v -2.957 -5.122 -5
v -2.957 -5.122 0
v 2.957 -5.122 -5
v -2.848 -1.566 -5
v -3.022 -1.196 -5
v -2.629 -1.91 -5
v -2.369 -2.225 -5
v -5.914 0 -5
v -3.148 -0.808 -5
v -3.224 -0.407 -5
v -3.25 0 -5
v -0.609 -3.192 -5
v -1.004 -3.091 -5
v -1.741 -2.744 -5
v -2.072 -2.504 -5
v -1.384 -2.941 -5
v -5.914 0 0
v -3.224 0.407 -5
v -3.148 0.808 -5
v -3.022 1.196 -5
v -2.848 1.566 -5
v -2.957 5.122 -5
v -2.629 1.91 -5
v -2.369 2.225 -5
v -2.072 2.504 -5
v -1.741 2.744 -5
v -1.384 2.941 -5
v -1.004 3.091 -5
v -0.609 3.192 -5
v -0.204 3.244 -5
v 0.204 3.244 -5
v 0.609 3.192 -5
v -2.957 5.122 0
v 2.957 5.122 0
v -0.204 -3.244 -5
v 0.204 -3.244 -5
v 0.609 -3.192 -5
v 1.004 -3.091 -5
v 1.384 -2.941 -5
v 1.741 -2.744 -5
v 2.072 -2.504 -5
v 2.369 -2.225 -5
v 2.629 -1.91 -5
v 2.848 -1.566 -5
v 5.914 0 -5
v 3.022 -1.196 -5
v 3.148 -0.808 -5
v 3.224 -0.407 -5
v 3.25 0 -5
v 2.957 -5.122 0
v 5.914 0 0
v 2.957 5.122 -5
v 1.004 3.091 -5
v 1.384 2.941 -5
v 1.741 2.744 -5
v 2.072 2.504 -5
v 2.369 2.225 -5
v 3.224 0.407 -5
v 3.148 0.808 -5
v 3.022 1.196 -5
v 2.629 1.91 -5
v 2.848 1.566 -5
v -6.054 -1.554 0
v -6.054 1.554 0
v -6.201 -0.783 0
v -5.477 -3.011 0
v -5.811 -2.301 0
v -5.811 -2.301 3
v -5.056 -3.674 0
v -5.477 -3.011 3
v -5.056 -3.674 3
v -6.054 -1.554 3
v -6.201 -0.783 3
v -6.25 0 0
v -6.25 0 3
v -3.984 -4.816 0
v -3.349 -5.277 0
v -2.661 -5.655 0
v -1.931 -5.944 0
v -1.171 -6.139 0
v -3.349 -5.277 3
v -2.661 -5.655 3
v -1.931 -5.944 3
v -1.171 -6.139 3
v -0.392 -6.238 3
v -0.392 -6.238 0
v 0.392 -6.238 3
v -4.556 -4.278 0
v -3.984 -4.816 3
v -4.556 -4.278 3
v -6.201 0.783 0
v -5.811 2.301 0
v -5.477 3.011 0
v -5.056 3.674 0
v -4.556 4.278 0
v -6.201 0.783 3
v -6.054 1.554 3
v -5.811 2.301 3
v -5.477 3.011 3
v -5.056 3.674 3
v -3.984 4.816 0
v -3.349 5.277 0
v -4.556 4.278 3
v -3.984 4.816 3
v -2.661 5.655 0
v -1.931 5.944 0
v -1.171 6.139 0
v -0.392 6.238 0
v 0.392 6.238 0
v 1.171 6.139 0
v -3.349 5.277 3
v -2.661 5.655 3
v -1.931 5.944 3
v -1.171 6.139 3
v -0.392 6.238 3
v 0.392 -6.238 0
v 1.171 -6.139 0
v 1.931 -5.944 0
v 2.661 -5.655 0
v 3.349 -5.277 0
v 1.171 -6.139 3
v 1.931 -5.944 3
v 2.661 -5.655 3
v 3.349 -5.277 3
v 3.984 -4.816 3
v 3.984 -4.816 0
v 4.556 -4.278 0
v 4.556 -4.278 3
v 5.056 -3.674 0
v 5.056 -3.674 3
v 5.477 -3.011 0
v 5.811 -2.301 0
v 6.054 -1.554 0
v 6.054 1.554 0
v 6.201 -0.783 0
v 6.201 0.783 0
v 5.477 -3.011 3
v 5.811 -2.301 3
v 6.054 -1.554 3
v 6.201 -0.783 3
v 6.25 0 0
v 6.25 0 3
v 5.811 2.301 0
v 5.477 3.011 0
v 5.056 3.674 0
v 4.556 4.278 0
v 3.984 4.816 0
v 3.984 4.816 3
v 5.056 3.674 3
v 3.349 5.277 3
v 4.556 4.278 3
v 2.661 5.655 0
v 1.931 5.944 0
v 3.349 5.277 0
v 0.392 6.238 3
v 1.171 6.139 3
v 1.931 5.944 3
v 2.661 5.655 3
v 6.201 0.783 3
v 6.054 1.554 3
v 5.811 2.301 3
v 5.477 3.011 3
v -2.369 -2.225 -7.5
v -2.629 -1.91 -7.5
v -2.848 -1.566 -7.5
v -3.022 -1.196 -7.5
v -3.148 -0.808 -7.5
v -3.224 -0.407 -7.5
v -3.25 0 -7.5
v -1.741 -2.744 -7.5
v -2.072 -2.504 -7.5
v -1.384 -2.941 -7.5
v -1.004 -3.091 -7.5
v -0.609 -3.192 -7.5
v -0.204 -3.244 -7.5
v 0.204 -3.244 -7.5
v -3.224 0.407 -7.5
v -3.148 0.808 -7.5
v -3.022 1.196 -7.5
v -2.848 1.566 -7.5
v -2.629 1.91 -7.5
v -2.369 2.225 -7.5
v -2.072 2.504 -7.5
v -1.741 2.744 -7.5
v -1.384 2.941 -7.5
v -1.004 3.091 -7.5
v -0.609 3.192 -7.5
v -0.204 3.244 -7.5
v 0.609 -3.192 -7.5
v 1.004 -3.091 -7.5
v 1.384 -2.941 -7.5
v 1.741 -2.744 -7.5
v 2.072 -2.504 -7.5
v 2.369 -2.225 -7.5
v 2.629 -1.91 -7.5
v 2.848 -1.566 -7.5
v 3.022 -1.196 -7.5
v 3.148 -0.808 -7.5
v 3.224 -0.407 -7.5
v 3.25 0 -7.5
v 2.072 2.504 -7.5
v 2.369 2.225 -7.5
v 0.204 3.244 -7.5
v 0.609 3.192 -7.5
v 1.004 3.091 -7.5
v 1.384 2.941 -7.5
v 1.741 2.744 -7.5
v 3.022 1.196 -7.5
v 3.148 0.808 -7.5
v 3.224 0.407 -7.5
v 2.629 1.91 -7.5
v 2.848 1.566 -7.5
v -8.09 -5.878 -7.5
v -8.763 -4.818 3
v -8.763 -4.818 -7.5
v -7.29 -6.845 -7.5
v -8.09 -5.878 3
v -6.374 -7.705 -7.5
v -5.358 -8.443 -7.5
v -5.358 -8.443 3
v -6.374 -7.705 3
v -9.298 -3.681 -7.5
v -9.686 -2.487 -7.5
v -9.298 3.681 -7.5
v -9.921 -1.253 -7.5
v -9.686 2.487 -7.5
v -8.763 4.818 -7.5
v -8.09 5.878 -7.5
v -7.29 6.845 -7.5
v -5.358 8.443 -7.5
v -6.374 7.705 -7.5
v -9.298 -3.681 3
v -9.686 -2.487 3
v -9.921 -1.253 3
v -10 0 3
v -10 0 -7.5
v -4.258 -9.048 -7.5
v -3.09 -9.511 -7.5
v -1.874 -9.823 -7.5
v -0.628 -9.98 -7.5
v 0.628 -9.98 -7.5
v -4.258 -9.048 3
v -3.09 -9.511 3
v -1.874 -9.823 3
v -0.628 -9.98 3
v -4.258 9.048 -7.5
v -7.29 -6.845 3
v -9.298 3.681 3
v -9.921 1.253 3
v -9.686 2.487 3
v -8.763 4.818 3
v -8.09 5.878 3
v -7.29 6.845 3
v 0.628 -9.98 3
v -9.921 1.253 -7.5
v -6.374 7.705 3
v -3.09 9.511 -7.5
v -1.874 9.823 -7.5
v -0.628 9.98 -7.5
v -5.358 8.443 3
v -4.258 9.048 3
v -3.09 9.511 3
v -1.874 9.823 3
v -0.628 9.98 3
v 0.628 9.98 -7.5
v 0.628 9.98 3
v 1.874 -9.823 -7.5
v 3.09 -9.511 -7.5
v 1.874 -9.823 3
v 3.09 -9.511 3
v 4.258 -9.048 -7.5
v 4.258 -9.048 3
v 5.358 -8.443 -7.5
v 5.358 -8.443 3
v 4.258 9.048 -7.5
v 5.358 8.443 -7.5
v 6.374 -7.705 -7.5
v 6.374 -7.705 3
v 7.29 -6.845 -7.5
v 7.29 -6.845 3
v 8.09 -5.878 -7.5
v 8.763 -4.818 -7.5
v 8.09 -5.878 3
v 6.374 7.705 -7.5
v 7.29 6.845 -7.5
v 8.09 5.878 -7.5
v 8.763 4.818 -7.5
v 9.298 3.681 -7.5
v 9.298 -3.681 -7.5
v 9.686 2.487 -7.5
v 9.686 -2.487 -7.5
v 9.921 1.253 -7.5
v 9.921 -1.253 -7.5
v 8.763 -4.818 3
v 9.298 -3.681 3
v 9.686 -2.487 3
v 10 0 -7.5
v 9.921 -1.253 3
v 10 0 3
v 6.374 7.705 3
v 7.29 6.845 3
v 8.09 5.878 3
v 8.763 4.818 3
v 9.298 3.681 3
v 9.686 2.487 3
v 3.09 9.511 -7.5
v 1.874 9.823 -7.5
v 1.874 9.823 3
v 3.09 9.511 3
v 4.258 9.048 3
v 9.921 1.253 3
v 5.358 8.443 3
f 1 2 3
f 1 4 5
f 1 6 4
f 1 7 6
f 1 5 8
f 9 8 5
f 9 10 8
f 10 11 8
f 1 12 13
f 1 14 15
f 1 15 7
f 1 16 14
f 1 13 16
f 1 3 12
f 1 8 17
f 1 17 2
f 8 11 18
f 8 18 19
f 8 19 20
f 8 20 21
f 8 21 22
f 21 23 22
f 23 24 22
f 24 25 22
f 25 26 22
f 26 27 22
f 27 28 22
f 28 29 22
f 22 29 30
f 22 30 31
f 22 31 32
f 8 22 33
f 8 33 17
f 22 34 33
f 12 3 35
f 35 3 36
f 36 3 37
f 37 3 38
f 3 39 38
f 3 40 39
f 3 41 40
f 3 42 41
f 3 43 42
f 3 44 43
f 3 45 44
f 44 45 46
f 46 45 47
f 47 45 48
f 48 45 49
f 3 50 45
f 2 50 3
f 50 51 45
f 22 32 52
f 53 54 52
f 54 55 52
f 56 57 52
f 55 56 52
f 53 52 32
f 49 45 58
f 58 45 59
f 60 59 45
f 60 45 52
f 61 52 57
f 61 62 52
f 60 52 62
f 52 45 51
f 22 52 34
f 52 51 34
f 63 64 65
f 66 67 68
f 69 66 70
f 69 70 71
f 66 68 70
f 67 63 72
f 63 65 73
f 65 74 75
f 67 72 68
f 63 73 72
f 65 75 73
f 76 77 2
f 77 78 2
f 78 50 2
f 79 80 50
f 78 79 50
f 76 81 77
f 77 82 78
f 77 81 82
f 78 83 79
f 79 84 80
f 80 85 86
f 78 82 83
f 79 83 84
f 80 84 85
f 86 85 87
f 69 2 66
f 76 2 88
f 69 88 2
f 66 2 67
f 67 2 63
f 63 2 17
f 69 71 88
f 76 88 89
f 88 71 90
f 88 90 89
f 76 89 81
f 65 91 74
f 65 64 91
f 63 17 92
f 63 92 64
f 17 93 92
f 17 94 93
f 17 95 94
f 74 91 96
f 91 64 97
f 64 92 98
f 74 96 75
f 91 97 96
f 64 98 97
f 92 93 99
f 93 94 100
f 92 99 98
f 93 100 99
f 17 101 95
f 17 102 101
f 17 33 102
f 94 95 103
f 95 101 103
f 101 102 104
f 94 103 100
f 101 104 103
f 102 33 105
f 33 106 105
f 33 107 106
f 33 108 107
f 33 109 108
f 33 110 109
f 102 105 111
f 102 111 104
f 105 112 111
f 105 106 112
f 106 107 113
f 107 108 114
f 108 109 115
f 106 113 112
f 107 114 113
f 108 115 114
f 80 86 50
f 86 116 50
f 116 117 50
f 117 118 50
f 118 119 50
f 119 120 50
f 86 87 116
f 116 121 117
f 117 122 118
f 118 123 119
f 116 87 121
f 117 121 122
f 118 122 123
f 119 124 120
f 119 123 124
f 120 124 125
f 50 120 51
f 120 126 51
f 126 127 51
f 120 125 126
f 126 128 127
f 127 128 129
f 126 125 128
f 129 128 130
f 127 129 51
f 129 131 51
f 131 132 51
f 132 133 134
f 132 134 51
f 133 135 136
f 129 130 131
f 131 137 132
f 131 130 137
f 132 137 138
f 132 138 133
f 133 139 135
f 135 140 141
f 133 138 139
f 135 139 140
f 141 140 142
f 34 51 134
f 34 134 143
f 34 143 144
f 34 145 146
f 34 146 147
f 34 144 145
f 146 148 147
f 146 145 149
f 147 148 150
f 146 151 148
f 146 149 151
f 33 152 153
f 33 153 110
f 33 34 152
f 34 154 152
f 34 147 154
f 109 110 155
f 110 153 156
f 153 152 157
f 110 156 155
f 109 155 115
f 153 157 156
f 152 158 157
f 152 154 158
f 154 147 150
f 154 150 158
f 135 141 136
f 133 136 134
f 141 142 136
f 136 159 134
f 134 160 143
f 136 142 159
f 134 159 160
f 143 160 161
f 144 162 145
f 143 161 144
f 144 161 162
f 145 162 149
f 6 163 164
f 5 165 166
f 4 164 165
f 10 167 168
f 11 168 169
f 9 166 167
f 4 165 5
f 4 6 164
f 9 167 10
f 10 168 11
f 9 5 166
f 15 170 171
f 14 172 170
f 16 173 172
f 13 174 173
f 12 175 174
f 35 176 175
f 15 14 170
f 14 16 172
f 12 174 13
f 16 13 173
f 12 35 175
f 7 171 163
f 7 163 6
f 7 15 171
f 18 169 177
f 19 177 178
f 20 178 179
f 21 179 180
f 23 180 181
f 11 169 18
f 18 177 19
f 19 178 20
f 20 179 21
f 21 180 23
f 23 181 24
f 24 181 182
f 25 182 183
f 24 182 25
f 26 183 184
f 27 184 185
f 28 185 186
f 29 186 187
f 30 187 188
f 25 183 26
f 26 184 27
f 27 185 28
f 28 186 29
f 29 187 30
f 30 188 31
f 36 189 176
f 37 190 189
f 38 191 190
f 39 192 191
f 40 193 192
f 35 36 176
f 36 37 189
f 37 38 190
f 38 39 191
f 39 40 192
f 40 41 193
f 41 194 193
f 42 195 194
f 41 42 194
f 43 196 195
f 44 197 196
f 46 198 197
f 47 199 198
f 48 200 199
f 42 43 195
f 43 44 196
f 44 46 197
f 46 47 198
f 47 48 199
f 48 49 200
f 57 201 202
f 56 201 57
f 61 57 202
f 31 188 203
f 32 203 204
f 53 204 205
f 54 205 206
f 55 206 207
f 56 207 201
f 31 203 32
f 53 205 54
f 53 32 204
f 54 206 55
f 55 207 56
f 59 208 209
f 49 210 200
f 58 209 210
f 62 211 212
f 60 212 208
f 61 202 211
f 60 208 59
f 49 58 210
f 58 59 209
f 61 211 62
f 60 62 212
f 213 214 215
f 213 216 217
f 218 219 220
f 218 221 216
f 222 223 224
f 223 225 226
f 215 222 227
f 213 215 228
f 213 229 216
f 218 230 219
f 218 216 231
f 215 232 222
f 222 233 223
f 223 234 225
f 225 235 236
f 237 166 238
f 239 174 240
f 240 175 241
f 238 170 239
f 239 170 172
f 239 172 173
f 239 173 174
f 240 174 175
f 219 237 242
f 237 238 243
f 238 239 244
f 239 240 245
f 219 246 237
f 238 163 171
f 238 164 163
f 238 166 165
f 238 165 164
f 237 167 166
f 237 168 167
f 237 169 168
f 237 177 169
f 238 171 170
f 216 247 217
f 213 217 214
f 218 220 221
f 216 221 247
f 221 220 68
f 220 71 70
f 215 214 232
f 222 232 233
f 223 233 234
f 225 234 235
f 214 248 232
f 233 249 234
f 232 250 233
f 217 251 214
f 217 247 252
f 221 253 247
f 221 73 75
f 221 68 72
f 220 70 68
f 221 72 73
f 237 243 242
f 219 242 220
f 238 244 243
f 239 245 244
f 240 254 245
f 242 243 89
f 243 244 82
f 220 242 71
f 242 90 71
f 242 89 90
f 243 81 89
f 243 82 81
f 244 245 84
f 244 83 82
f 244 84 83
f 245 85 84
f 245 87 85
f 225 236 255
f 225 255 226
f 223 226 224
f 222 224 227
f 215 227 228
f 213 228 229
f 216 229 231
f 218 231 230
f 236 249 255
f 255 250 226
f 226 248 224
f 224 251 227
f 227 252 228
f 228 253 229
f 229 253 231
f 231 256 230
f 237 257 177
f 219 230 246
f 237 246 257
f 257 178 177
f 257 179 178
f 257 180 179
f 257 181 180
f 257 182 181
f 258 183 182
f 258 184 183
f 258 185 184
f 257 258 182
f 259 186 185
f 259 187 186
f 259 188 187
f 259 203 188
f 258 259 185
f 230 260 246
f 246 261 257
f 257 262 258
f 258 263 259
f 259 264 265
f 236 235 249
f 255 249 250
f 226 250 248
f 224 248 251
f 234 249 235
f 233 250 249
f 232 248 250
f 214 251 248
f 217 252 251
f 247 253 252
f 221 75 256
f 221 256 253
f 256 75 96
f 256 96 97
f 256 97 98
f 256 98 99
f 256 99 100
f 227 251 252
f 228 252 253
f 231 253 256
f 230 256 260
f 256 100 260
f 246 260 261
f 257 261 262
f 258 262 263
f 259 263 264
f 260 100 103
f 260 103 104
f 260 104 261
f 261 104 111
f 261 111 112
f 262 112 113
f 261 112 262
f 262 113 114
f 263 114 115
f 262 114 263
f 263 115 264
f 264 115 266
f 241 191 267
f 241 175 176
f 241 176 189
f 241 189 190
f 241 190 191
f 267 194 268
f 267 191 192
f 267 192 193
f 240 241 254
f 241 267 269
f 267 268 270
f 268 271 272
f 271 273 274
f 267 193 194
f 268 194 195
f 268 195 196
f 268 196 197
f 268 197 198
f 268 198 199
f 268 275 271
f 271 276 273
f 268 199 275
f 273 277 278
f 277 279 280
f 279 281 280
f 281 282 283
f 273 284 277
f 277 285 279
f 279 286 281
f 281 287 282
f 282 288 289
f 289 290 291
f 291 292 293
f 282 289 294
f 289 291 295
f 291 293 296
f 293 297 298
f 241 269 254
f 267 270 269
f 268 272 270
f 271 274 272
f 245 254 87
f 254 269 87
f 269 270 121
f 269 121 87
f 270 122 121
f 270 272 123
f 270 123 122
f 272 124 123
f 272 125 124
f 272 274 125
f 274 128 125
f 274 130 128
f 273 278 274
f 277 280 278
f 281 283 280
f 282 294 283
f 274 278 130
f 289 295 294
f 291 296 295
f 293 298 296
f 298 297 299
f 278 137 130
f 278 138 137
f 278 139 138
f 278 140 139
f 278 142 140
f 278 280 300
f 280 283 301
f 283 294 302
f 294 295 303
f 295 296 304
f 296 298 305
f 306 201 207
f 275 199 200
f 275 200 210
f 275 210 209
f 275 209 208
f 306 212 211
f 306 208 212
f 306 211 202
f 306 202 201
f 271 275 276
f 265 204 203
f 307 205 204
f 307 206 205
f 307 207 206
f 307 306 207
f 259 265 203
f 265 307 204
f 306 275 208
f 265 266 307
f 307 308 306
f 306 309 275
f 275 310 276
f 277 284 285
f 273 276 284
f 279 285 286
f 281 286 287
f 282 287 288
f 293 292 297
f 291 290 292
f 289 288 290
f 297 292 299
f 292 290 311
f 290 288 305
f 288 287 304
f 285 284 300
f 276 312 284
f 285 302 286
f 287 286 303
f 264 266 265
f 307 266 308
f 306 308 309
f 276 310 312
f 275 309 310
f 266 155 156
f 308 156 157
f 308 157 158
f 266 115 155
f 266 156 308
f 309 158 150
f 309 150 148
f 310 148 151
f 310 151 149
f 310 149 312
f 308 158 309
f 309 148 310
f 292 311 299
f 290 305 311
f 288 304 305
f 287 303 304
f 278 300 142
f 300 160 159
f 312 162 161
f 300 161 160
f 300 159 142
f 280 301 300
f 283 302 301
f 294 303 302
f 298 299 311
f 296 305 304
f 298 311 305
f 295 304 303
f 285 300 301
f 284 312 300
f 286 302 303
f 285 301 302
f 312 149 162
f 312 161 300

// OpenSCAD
$fn = 50;

difference() {
	union() {
		translate(v = [0, 0, -7.5]) {
			cylinder(h = 10.5, r = 10.0);
		}
	}
	union() {
		translate(v = [0, 0, 0]) {
			rotate(a = [0, 0, 0]) {
				difference() {
					union() {
						translate(v = [0, 0, -5]) {
							linear_extrude(height = 5) {
								polygon(points = [[5.914249999999999, 0.0], [2.957125, 5.1218907443321156], [-2.9571249999999982, 5.1218907443321156], [-5.914249999999999, 7.242867331857232e-16], [-2.9571250000000022, -5.121890744332115], [2.9571249999999956, -5.121890744332118]]);
							}
						}
					}
					union();
				}
			}
		}
		#cylinder(h = 3, r = 6.25);
		#translate(v = [0, 0, -100.0]) {
			cylinder(h = 200, r = 3.25);
		}
	}
}
